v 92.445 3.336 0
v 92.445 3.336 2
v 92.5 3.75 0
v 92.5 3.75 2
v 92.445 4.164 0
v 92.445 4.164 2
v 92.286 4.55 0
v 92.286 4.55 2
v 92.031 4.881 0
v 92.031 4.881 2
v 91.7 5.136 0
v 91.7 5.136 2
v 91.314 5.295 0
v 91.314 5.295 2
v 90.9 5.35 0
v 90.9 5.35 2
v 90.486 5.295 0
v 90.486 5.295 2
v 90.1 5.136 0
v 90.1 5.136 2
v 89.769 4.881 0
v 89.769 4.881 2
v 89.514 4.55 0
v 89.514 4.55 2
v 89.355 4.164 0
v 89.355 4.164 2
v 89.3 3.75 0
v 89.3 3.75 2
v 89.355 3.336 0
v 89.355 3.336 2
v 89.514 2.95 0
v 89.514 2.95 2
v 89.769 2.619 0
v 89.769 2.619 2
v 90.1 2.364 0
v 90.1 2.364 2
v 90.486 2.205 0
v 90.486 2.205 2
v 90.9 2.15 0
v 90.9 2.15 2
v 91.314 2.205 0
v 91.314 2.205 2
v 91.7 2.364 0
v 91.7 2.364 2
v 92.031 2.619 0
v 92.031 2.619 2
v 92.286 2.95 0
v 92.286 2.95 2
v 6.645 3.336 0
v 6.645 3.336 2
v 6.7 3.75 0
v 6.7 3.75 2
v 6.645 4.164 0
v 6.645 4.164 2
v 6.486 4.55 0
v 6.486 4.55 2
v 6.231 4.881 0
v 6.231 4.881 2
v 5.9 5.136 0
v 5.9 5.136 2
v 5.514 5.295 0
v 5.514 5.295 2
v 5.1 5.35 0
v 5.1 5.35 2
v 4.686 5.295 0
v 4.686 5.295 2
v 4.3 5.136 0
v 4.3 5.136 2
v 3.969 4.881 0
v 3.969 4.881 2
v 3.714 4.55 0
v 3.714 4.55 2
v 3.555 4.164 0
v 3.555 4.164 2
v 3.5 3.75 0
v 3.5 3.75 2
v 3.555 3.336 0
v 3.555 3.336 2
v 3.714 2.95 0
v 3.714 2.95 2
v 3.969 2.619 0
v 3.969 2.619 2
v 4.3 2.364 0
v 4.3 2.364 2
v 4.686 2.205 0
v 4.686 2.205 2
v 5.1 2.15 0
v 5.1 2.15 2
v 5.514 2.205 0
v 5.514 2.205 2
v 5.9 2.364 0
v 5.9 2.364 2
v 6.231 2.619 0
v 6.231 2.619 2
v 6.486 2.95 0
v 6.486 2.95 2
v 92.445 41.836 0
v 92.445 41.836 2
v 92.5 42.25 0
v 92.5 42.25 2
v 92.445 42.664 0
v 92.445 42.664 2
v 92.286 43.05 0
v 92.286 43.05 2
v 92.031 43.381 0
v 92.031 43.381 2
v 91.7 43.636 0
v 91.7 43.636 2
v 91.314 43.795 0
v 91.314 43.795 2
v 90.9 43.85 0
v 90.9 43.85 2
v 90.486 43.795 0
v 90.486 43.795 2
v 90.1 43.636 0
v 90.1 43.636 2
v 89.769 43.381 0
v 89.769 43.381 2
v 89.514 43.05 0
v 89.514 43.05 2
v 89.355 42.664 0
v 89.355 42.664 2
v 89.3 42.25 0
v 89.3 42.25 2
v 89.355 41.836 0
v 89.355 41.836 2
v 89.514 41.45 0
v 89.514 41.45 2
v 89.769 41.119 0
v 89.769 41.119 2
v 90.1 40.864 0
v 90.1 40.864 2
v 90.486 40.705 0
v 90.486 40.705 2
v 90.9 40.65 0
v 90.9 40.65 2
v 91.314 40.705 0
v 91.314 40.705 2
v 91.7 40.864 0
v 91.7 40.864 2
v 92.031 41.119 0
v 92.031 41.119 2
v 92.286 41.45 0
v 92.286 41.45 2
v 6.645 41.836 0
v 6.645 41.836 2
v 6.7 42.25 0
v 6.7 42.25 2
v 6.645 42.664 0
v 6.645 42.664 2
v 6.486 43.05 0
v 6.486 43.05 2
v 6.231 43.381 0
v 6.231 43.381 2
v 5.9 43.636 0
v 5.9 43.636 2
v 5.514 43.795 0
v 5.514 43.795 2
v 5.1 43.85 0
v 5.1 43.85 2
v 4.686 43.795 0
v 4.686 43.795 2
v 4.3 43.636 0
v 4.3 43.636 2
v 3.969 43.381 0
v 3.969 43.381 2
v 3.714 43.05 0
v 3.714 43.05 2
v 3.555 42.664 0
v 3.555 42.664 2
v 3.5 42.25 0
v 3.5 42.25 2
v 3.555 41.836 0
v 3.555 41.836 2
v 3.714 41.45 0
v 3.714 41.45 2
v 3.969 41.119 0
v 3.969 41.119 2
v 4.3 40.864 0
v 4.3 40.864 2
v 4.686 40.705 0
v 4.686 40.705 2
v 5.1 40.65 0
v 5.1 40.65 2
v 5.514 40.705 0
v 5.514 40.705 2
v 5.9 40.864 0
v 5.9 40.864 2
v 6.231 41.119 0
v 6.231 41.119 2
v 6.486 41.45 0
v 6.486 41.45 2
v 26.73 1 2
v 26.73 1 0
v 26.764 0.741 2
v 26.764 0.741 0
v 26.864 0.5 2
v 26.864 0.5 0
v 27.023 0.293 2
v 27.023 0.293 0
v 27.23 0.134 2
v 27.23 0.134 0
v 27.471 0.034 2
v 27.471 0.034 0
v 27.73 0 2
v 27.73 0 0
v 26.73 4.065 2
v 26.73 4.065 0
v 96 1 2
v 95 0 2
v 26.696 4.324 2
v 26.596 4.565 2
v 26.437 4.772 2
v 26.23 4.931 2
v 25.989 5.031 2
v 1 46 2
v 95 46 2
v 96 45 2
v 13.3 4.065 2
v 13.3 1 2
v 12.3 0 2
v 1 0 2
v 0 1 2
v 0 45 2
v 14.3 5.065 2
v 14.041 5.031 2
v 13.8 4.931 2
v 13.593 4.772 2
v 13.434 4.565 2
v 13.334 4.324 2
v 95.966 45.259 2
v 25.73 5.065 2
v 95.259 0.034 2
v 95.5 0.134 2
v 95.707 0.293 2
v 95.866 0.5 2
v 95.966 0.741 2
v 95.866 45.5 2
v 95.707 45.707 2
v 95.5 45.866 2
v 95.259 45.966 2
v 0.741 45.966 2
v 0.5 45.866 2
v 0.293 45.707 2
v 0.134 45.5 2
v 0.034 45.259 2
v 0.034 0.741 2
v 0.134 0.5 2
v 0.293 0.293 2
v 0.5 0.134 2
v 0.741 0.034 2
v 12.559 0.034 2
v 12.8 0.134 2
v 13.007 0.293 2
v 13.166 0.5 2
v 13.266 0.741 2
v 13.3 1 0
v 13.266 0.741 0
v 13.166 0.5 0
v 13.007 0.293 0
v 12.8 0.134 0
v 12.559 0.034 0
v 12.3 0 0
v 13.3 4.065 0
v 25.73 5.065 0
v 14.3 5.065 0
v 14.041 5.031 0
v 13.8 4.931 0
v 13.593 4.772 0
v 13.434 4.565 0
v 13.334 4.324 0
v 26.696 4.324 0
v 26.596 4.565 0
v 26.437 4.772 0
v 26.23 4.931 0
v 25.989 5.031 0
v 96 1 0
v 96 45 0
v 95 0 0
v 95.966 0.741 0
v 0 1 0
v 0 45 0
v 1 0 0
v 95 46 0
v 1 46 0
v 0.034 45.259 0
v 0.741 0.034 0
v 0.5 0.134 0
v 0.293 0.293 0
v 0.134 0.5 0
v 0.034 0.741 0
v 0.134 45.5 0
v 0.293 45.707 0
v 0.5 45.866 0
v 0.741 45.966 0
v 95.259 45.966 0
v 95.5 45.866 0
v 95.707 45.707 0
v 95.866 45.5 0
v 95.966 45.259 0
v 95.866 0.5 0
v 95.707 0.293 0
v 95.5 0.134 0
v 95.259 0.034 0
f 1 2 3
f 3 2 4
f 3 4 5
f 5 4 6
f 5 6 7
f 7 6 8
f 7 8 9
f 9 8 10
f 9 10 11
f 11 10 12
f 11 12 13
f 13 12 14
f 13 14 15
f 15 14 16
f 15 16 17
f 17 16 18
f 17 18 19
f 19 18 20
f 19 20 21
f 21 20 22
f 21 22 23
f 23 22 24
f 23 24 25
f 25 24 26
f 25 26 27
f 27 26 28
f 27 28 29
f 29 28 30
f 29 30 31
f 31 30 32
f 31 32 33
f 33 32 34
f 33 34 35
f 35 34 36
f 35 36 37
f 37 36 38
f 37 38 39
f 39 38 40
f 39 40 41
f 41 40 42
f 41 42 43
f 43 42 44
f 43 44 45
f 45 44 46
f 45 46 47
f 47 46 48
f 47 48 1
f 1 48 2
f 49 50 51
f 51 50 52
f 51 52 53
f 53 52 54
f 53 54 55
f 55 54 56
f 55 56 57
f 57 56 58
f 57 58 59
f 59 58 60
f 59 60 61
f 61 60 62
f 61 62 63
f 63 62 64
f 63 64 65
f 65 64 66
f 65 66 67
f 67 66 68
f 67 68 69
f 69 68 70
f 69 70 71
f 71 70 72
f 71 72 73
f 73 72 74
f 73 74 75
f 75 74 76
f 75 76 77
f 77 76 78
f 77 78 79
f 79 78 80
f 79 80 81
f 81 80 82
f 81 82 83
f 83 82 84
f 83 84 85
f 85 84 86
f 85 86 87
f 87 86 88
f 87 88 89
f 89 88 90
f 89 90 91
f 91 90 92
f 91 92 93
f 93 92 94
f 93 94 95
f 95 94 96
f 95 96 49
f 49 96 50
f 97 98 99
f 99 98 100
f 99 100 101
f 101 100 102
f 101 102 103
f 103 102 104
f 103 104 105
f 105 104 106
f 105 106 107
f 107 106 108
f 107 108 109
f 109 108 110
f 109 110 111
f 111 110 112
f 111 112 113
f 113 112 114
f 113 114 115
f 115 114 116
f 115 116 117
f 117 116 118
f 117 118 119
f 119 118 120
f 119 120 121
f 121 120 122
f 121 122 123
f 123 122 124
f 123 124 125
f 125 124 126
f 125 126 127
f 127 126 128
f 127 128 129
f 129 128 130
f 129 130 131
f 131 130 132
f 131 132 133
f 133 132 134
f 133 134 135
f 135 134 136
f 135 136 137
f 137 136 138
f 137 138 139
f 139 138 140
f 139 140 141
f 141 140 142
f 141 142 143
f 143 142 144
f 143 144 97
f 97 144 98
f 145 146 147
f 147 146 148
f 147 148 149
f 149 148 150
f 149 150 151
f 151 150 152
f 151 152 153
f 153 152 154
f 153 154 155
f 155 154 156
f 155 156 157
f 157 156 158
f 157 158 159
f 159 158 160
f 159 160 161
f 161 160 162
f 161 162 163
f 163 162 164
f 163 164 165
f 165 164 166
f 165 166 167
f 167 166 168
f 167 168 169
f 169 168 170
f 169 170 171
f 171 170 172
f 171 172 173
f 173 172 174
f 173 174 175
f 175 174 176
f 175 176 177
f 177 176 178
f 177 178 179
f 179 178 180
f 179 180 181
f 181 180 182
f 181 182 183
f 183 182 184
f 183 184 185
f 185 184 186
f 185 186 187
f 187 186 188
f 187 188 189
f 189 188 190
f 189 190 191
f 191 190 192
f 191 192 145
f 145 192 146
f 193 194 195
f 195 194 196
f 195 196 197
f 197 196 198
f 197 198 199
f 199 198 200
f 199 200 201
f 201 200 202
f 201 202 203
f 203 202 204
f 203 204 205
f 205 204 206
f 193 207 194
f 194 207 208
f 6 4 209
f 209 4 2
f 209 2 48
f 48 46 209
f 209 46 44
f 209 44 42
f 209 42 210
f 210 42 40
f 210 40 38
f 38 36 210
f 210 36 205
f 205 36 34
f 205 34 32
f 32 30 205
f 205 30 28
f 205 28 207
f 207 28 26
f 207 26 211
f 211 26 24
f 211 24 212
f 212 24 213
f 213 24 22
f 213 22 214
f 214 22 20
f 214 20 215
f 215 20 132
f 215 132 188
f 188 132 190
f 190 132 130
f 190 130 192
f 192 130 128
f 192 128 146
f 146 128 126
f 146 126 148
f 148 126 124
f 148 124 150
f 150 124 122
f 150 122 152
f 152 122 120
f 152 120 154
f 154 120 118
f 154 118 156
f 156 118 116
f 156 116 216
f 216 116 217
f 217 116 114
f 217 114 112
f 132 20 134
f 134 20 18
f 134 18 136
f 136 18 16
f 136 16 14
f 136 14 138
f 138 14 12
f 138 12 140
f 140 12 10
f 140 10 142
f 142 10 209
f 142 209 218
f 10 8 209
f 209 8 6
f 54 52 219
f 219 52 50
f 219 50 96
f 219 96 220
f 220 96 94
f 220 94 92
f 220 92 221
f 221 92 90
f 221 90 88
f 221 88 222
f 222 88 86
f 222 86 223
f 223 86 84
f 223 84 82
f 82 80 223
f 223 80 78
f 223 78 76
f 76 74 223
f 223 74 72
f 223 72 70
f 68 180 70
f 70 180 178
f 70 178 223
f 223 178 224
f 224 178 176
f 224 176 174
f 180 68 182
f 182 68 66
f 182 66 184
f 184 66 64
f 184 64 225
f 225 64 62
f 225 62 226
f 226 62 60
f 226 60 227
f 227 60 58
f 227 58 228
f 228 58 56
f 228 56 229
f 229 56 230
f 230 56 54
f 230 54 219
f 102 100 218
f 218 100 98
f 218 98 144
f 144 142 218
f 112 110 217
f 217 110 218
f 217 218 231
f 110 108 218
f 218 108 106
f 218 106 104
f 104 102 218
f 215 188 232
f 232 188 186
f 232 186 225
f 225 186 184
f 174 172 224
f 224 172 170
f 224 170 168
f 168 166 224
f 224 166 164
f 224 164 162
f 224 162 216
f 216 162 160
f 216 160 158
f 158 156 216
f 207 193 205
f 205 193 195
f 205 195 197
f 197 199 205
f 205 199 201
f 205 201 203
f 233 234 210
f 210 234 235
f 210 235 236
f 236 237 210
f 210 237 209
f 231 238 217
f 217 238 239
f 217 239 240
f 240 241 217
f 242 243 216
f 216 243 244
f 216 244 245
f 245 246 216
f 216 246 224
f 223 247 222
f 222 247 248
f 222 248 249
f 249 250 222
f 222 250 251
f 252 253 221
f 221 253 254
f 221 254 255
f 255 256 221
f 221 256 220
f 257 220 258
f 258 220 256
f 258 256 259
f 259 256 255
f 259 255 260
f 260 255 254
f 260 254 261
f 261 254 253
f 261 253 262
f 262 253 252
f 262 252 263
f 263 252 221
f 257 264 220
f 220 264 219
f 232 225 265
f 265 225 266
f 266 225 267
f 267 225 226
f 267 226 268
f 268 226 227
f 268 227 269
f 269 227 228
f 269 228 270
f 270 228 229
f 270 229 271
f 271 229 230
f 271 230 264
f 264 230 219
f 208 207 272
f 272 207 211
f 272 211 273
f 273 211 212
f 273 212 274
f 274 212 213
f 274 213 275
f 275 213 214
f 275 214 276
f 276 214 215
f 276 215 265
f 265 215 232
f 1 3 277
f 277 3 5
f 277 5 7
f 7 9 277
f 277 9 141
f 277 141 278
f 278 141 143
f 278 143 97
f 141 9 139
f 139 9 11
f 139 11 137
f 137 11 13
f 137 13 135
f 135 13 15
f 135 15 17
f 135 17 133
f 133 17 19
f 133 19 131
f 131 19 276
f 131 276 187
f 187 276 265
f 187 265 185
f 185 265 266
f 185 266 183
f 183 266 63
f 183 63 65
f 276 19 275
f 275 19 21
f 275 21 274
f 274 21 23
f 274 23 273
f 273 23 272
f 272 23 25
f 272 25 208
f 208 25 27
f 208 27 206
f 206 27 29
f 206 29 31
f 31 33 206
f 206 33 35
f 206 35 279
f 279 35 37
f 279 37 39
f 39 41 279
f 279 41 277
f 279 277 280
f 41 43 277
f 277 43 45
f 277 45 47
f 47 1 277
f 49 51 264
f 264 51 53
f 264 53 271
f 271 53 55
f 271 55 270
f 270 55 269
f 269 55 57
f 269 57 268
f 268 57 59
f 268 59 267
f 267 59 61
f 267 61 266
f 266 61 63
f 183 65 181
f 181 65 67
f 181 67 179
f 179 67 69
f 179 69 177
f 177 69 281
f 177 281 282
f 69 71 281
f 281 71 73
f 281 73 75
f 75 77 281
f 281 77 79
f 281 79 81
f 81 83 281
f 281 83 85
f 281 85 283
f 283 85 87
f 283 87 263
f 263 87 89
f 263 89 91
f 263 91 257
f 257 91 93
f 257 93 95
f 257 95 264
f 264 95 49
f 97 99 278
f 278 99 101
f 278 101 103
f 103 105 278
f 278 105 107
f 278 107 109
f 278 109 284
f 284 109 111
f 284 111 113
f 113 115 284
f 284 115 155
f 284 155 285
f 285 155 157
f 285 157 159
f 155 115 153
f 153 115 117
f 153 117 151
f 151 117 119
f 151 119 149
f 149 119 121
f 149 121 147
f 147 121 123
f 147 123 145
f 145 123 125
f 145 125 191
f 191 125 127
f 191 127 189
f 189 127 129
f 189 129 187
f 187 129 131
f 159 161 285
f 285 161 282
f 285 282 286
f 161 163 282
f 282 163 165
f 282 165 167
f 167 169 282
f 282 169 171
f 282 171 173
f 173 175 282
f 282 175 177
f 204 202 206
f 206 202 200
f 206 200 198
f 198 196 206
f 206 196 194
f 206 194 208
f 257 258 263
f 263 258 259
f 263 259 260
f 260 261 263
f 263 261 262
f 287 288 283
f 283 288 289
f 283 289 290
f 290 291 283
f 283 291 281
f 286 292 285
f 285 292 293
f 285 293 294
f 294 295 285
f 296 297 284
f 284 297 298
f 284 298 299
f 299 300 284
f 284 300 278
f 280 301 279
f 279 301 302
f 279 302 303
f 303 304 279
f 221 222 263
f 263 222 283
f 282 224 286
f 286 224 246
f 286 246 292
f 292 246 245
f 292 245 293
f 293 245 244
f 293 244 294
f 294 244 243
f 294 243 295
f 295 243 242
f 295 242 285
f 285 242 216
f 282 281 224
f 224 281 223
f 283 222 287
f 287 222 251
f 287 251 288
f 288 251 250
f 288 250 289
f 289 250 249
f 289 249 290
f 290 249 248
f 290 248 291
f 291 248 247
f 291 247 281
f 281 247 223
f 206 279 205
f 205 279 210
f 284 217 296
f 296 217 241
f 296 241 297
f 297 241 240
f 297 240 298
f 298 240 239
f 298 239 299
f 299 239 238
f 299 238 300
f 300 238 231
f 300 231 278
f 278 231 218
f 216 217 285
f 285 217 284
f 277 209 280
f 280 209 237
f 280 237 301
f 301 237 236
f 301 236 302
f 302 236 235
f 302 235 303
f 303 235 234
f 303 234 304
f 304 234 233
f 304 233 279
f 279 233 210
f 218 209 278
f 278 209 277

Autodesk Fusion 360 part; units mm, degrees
sketch "Sketch1" plane through (0, 0, 0) normal (0, 0, 1) x (1, 0, 0)
  line L0 (0, 0) -> (96, 0)
  line L1 (96, 0) -> (96, 46)
  line L2 (96, 46) -> (0, 46)
  line L3 (0, 46) -> (0, 0)
  dimension "d1" = 96
  dimension "d2" = 46
extrude "Extrude1" add sketch "Sketch1" along normal blind 2
fillet "Fillet1" radius 1 4 edges at (96, 0, 1) (96, 46, 1) (0, 0, 1) (0, 46, 1)
sketch "Sketch2" plane through (0, 0, 2) normal (0, 0, 1) x (-1, 0, 0)
  arc A0 (-1, -46) -> (0, -45) centre (-1, -45) ccw
  line L0 (0, -45) -> (0, -1)
  arc A1 (0, -1) -> (-1, 0) centre (-1, -1) ccw
  line L1 (-1, 0) -> (-95, 0)
  arc A2 (-95, 0) -> (-96, -1) centre (-95, -1) ccw
  line L2 (-96, -1) -> (-96, -45)
  arc A3 (-96, -45) -> (-95, -46) centre (-95, -45) ccw
  line L3 (-95, -46) -> (-1, -46)
  line L4 (-13.3, 0) -> (-26.73, 0)
  line L5 (-26.73, 0) -> (-26.73, -4.065)
  line L6 (-25.73, -5.065) -> (-14.3, -5.065)
  line L7 (-13.3, -4.065) -> (-13.3, 0)
  arc A4 (-14.3, -5.065) -> (-13.3, -4.065) centre (-14.3, -4.065) ccw
  arc A5 (-26.73, -4.065) -> (-25.73, -5.065) centre (-25.73, -4.065) ccw
  point P0 (-13.3, -5.065)
  dimension "d7" = 13.43
  dimension "d8" = 5.065
  dimension "d9" = 13.3
  dimension "d10" = 5.065
  dimension "d11" = 1
  dimension "d12" = 1
extrude "Extrude2" cut sketch "Sketch2" against normal blind 2 contours L1 L4 L5 L6 L7 A4 A5
fillet "Fillet4" radius 1 2 edges at (13.3, 0, 1) (26.73, 0, 1)
sketch "Sketch5" plane through (0, 0, 2) normal (0, 0, 1) x (-1, 0, 0)
  arc A0 (-26.73, -1) -> (-27.73, 0) centre (-27.73, -1) ccw
  line L0 (-27.73, 0) -> (-95, 0)
  arc A1 (-95, 0) -> (-96, -1) centre (-95, -1) ccw
  line L1 (-96, -1) -> (-96, -45)
  arc A2 (-96, -45) -> (-95, -46) centre (-95, -45) ccw
  line L2 (-95, -46) -> (-1, -46)
  arc A3 (-1, -46) -> (0, -45) centre (-1, -45) ccw
  line L3 (0, -45) -> (0, -1)
  arc A4 (0, -1) -> (-1, 0) centre (-1, -1) ccw
  line L4 (-1, 0) -> (-12.3, 0)
  arc A5 (-12.3, 0) -> (-13.3, -1) centre (-12.3, -1) ccw
  line L5 (-13.3, -1) -> (-13.3, -4.065)
  arc A6 (-14.3, -5.065) -> (-13.3, -4.065) centre (-14.3, -4.065) ccw
  line L6 (-14.3, -5.065) -> (-25.73, -5.065)
  arc A7 (-26.73, -4.065) -> (-25.73, -5.065) centre (-25.73, -4.065) ccw
  line L7 (-26.73, -4.065) -> (-26.73, -1)
  circle A8 centre (-5.1, -3.75) radius 1.6
  circle A9 centre (-5.1, -42.25) radius 1.6
  circle A10 centre (-90.9, -3.75) radius 1.6
  circle A11 centre (-90.9, -42.25) radius 1.6
  dimension "d33" = 3.2
  dimension "d34" = 3.75
  dimension "d35" = 5.1
  dimension "d36" = 3.2
  dimension "d37" = 3.75
  dimension "d38" = 5.1
  dimension "d39" = 3.2
  dimension "d40" = 5.1
  dimension "d41" = 3.75
  dimension "d42" = 3.2
  dimension "d43" = 3.75
  dimension "d44" = 5.1
extrude "Extrude5" cut sketch "Sketch5" against normal blind 2 contours A8 | A9 | A10 | A11
equation "d8 = 4.69 mm - 0.375 mm + 0.75 mm"
equation "d10 = 4.69 mm - 0.375 mm + 0.75 mm"
